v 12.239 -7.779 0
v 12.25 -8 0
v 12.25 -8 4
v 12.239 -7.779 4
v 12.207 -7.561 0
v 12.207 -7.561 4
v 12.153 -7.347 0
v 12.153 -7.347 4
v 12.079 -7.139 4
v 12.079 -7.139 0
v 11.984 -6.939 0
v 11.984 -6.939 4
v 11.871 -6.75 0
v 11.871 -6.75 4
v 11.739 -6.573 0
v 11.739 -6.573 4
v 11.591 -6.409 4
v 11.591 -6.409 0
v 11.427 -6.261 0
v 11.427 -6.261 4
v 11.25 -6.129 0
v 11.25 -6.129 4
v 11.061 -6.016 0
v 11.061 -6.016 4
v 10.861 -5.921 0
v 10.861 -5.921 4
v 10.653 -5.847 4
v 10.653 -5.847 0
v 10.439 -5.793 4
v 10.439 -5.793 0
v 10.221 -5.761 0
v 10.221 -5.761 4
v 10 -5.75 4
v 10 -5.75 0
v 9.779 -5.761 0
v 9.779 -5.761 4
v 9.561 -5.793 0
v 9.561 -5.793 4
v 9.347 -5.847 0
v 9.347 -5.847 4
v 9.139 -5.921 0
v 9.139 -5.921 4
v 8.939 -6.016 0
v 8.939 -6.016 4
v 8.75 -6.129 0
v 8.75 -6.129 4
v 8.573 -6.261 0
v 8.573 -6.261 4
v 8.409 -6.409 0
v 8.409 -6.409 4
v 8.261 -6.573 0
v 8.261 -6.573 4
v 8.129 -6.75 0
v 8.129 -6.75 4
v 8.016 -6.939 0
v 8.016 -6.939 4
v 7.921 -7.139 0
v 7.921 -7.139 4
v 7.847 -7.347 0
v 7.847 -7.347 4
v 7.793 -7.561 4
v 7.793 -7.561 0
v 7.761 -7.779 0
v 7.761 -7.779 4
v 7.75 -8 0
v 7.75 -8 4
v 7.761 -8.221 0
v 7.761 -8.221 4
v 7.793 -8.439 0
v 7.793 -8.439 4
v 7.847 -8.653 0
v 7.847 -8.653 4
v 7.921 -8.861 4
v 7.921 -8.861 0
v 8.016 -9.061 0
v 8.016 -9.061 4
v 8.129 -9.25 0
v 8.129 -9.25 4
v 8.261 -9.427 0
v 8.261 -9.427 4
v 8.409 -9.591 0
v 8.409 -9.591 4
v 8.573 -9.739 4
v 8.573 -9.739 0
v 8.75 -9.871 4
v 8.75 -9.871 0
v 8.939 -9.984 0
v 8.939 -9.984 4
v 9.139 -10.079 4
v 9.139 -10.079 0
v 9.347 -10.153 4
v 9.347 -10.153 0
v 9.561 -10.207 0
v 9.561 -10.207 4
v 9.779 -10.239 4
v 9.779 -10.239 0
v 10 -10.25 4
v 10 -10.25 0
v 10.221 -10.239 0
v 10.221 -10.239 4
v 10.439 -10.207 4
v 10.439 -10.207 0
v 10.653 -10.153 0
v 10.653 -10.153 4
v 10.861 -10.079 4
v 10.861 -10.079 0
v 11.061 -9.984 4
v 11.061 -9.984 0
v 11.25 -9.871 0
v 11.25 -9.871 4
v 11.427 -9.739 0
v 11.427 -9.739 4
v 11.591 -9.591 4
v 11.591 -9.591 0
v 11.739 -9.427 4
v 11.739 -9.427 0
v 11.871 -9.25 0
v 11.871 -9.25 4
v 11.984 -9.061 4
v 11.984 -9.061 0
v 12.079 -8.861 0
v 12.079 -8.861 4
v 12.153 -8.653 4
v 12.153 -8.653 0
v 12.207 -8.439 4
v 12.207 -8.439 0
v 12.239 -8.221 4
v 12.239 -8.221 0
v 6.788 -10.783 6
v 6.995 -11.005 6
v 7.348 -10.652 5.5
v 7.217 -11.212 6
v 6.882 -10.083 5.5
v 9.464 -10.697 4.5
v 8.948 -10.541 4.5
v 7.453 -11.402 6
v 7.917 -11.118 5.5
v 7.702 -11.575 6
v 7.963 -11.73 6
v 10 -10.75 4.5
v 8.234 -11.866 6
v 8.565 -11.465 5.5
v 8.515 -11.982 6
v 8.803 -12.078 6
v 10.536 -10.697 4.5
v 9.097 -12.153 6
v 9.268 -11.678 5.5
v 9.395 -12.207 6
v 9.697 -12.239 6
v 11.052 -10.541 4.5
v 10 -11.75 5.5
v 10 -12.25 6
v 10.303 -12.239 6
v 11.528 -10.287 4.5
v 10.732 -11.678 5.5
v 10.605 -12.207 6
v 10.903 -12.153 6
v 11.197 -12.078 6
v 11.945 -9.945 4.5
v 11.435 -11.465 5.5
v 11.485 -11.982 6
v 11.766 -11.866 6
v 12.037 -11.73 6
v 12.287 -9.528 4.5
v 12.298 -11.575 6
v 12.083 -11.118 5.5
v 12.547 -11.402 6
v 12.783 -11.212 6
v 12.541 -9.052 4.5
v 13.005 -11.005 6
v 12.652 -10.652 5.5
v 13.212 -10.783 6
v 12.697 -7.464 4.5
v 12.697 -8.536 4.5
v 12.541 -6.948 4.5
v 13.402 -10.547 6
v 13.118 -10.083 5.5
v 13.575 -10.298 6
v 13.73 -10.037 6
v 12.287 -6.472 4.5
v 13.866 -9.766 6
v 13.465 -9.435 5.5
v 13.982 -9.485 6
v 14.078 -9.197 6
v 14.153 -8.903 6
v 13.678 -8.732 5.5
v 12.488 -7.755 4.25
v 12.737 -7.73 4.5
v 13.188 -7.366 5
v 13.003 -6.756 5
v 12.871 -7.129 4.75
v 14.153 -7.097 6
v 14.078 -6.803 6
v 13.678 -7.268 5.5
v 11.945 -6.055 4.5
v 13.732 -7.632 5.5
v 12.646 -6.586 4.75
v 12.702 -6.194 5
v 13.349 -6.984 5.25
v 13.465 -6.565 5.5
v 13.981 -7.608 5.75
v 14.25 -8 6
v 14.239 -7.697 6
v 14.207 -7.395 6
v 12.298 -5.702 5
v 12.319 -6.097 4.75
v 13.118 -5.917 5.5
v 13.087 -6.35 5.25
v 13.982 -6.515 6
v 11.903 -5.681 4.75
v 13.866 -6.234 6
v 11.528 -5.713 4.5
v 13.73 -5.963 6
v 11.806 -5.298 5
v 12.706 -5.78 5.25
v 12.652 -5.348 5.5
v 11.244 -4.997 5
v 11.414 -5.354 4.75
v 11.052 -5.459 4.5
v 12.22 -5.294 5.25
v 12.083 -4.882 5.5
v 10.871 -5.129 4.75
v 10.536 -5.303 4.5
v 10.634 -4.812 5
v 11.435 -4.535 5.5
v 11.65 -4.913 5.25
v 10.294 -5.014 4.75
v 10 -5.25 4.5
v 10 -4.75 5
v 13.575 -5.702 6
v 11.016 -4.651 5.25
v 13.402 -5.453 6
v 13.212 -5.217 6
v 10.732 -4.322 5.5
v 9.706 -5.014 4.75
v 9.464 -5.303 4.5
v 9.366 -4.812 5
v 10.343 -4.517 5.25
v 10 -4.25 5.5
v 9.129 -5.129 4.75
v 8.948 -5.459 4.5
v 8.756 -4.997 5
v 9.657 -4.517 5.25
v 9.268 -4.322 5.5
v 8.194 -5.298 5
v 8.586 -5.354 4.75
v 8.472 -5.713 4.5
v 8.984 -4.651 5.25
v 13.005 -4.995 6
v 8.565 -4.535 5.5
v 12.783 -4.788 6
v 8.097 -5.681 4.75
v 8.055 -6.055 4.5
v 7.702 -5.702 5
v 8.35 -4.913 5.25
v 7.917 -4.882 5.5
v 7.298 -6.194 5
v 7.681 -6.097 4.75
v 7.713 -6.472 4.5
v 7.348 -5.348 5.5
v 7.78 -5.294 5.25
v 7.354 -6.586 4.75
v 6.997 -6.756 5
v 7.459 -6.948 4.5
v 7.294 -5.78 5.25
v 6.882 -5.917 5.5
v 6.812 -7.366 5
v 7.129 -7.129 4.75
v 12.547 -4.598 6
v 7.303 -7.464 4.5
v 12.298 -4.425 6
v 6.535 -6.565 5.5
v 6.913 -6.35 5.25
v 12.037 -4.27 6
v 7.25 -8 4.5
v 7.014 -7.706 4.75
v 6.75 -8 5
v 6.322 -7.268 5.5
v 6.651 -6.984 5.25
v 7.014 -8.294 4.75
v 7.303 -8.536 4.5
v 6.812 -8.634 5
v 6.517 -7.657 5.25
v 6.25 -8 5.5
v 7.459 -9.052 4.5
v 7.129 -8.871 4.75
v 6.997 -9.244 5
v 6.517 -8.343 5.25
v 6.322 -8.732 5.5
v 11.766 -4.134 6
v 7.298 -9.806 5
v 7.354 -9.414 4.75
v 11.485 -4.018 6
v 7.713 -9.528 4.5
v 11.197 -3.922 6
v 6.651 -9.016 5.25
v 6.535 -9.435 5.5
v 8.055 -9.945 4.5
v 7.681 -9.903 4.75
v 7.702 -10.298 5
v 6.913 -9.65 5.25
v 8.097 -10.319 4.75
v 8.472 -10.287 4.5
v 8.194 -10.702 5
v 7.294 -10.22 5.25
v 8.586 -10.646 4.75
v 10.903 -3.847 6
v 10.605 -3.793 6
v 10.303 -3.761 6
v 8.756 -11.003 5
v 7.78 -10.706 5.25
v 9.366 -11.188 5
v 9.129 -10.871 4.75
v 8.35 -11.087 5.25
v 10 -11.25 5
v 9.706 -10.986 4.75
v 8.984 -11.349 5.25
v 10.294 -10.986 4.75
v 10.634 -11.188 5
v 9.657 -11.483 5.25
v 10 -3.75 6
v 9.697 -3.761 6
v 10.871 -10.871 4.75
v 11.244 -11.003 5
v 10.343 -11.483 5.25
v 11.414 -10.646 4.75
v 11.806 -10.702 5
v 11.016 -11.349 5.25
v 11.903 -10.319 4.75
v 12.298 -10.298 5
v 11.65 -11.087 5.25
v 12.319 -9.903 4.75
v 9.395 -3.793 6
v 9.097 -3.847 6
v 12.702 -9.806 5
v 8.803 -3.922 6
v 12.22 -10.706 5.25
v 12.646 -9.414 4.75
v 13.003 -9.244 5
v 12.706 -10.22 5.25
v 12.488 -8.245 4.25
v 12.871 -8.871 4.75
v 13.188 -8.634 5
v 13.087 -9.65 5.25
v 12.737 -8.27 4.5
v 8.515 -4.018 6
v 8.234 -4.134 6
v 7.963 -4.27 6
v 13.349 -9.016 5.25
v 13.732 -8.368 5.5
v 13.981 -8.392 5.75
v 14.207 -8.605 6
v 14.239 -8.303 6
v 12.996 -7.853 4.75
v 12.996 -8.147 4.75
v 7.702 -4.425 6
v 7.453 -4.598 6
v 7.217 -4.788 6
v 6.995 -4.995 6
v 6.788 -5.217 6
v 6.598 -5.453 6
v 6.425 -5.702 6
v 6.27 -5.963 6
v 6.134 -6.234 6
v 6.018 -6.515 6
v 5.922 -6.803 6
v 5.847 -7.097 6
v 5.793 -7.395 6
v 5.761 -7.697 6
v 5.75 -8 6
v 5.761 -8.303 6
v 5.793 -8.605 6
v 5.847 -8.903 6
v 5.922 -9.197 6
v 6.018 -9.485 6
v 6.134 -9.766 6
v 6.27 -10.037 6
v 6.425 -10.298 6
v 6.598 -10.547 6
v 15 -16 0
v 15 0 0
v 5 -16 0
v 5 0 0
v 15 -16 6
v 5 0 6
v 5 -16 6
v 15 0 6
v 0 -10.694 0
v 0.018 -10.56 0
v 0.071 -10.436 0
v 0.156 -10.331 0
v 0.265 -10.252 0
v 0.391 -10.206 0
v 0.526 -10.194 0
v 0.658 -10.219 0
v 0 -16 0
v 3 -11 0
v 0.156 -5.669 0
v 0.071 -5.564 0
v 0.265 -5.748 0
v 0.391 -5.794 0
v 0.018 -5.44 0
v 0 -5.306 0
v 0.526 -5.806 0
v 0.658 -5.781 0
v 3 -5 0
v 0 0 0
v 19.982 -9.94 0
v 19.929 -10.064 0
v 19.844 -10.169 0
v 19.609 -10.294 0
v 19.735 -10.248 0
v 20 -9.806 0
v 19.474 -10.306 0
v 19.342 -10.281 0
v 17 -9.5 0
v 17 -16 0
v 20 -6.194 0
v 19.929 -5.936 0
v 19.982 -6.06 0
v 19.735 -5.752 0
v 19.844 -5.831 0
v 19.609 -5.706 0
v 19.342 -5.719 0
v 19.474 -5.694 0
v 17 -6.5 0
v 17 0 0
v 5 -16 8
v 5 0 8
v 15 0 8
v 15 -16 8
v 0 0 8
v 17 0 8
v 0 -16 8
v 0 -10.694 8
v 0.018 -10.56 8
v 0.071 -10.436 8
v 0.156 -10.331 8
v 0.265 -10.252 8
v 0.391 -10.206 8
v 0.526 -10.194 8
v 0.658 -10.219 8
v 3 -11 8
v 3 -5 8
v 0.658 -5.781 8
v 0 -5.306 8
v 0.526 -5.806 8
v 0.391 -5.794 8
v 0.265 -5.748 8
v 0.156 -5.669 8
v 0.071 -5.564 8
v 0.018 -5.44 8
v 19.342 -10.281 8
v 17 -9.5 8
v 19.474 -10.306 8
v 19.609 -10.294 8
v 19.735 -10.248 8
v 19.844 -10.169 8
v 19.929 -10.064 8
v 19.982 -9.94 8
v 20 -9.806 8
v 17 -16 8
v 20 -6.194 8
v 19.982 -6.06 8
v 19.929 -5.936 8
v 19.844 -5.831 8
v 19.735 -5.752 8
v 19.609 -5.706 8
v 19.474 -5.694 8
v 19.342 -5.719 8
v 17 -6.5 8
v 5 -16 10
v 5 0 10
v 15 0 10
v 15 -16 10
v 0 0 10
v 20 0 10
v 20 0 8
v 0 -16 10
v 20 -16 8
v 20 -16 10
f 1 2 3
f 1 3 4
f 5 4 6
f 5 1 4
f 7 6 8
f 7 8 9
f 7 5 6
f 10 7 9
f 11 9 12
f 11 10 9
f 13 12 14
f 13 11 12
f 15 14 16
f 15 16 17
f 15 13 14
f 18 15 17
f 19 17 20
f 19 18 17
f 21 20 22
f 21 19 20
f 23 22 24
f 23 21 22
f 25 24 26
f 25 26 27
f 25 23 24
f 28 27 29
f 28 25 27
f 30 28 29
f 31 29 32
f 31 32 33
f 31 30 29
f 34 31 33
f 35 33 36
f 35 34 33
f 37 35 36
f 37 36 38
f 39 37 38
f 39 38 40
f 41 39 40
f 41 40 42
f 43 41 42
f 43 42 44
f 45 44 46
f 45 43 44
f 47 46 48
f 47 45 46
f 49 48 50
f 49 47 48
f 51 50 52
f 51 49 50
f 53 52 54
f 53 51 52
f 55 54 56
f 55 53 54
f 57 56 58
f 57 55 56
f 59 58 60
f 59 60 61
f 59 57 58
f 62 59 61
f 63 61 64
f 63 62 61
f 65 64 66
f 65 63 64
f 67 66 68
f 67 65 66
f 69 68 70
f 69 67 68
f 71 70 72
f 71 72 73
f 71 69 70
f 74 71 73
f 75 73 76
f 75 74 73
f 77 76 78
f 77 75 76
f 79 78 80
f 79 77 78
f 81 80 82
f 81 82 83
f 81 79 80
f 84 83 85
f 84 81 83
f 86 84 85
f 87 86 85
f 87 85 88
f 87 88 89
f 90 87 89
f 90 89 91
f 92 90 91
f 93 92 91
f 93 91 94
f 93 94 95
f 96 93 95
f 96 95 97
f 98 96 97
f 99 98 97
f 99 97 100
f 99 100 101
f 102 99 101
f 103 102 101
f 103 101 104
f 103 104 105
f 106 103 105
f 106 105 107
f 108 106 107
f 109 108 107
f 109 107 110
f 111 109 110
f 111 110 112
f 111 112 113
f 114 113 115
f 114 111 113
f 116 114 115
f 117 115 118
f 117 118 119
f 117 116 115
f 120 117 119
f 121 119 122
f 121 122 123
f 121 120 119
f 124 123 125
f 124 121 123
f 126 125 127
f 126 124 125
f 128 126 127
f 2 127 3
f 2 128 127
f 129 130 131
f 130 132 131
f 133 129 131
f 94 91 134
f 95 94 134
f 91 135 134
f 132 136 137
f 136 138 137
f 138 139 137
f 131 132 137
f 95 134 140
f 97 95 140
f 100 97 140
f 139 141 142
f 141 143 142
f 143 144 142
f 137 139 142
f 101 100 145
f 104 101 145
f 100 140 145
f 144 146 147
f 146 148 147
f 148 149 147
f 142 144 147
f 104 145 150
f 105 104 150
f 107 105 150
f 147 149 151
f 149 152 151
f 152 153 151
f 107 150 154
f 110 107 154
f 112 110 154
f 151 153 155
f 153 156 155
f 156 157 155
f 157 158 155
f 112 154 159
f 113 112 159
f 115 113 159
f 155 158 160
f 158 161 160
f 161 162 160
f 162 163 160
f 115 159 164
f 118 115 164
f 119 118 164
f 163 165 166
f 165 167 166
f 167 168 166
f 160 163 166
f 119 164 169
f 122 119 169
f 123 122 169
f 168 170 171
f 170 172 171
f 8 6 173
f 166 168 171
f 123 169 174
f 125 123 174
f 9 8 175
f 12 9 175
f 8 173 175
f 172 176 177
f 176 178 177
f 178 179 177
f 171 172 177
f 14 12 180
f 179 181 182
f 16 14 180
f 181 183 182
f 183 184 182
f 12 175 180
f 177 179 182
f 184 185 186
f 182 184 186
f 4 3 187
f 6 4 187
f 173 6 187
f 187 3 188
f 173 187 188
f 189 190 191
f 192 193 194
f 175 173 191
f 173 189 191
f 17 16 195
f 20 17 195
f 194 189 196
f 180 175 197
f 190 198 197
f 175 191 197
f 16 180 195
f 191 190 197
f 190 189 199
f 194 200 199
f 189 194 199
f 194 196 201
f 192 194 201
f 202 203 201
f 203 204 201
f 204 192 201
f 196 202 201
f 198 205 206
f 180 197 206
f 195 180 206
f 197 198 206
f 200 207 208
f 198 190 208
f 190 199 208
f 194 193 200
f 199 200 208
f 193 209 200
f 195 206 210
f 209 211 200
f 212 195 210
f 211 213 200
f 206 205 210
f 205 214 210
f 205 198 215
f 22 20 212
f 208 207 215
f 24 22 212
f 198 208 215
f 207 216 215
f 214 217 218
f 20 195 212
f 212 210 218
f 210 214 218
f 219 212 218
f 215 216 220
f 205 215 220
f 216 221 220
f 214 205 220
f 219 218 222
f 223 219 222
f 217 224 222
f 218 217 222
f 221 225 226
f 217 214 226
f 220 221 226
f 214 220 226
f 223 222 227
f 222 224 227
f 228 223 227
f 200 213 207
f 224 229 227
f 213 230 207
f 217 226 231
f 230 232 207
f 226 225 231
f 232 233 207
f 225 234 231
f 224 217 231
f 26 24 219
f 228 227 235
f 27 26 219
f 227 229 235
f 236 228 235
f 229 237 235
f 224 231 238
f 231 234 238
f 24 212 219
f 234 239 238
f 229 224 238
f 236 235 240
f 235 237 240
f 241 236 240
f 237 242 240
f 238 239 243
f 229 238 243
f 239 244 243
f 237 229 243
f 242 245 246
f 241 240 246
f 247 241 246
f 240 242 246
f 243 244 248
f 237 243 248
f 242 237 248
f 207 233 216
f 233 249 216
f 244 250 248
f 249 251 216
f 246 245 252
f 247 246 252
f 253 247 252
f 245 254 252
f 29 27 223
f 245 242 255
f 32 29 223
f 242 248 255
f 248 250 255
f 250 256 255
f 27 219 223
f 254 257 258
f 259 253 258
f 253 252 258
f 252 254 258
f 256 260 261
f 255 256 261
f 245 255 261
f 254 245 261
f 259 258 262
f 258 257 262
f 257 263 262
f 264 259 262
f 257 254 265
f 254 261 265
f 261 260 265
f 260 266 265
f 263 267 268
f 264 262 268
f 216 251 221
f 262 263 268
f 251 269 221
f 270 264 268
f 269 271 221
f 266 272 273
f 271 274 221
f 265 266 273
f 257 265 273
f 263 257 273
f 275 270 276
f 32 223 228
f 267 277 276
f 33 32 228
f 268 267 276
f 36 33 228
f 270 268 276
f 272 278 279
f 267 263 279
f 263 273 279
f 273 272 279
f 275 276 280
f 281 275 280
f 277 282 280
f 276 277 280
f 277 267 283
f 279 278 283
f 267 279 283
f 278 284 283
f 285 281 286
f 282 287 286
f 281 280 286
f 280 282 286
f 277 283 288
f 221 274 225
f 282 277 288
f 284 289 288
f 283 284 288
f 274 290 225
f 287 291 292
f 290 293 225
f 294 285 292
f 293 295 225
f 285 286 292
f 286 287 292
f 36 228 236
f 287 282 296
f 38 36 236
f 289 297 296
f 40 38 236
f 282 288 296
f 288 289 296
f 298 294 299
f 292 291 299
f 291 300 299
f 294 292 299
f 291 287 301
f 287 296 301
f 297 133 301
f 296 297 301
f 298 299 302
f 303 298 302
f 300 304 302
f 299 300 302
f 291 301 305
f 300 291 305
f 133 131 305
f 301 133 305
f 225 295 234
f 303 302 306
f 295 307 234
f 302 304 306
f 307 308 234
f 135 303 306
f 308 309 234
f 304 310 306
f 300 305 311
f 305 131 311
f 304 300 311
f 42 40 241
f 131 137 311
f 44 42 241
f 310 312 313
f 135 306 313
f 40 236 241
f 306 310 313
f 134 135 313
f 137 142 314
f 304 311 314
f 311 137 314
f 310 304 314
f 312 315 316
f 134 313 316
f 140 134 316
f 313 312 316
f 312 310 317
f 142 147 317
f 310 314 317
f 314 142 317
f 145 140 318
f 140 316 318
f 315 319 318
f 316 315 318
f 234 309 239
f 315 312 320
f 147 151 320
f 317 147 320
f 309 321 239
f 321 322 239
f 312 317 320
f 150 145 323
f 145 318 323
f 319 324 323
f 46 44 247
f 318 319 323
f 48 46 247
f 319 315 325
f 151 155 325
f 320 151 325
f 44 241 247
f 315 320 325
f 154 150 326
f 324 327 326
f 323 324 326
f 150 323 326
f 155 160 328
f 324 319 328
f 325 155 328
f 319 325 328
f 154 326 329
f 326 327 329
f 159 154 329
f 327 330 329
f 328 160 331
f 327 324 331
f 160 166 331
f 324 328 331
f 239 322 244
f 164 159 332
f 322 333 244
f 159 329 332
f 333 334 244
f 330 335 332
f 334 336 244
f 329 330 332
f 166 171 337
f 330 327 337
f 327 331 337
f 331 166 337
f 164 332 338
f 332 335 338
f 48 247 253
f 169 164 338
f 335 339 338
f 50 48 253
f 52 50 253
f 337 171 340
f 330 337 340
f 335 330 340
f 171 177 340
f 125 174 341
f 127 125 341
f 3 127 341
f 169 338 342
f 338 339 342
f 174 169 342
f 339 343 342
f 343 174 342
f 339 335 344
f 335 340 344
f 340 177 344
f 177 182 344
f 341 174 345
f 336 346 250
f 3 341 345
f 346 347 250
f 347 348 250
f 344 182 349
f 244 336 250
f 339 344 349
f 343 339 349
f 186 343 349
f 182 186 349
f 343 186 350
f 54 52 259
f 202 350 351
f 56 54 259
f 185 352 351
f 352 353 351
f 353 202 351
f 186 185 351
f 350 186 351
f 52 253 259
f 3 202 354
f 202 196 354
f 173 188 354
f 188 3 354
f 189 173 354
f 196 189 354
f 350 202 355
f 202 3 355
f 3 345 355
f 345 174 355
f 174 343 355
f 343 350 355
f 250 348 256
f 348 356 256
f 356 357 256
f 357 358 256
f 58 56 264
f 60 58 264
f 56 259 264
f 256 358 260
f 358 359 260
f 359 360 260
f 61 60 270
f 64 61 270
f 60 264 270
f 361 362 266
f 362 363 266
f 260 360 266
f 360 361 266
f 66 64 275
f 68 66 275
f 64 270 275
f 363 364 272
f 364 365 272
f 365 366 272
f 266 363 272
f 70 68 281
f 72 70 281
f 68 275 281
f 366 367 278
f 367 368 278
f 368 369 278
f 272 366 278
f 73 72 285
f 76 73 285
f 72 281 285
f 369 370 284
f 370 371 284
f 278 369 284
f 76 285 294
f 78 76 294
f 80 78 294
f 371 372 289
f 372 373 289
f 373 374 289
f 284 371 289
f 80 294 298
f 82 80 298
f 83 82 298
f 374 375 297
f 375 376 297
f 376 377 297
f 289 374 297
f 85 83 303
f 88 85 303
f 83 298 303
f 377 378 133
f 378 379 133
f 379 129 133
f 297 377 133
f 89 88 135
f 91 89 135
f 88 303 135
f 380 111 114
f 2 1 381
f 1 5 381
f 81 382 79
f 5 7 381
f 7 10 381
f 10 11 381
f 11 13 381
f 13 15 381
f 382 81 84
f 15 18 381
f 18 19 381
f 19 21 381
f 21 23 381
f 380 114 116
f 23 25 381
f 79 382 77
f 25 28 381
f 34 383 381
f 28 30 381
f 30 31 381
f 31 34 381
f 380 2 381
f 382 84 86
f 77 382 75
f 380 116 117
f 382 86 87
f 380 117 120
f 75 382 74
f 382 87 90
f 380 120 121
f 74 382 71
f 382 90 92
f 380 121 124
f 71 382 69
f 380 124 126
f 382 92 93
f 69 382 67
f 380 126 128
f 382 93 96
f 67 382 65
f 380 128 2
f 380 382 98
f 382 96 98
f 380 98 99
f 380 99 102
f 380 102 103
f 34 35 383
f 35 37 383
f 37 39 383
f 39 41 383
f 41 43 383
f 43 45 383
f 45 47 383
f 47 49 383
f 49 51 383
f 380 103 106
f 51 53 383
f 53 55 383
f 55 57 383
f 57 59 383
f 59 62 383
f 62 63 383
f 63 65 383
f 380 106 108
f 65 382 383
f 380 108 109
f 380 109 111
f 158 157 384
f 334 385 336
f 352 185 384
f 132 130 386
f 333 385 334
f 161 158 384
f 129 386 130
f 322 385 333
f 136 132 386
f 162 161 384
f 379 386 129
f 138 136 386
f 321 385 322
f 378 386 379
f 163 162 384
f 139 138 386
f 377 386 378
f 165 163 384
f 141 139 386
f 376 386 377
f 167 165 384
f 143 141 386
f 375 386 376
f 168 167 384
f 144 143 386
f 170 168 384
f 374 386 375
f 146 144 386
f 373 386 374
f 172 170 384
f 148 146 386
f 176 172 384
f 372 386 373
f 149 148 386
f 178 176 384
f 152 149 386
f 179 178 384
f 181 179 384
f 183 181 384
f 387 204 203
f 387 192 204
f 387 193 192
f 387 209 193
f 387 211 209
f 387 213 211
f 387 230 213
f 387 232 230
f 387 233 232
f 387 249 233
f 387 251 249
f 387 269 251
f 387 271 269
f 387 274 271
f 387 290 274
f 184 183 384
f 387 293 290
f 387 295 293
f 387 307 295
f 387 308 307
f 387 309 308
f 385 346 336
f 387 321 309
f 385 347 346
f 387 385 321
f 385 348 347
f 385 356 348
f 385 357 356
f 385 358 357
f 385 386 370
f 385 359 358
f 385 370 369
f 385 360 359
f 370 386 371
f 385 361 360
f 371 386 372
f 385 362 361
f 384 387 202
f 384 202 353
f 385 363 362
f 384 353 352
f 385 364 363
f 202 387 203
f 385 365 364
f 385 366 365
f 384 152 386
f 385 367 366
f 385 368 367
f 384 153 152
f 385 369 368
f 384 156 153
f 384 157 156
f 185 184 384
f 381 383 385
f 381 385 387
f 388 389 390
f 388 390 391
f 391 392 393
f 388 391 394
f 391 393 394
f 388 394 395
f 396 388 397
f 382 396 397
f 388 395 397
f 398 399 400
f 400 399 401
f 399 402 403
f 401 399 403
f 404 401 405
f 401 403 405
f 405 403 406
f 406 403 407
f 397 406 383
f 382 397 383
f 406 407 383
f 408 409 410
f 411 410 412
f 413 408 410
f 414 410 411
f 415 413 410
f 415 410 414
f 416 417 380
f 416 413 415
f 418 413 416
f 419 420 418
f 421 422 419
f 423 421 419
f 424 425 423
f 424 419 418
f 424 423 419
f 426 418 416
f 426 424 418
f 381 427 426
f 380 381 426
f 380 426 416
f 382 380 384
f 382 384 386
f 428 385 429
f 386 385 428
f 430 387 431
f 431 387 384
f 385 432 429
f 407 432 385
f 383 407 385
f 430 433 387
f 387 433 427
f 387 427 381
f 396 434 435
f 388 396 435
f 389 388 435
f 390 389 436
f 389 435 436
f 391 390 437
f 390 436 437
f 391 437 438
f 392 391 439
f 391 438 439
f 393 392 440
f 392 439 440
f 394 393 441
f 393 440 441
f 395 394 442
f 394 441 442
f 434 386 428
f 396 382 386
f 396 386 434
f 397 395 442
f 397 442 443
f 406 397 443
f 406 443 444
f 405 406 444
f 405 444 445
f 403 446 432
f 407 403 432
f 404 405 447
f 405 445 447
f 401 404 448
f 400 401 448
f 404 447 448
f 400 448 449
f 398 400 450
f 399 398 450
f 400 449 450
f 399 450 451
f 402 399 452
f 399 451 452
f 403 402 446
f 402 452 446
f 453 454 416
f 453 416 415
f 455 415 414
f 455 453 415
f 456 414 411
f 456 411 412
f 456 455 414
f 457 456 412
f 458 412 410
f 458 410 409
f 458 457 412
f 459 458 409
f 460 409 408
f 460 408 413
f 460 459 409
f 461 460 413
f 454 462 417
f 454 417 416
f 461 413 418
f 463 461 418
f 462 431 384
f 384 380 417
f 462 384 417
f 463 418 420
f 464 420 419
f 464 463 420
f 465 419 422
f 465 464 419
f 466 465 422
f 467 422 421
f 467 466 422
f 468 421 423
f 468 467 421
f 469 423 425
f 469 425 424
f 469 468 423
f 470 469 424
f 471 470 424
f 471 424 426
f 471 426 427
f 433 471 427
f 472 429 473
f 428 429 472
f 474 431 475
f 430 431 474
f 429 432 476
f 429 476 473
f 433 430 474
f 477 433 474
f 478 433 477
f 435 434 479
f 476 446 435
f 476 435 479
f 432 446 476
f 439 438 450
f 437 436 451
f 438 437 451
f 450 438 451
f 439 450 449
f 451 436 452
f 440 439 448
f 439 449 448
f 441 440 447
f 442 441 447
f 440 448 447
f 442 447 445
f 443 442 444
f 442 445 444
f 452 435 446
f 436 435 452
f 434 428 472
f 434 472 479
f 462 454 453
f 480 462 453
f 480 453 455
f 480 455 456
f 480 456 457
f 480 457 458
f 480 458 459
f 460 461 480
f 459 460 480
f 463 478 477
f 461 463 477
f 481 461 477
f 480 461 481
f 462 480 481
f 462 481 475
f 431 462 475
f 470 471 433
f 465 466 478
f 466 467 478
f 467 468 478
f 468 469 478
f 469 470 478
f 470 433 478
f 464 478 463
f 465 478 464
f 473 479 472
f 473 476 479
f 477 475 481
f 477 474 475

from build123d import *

# Parameters (mm, degrees)
PAD_DEPTH    = 8
FILLET_R     = 0.5
SKETCH002_W  = 5
SKETCH002_H  = 16
PAD002_DEPTH = 2
SKETCH001_W  = 10
SKETCH001_H  = 16
SKETCH001_R  = 2.25
PAD001_DEPTH = 6
CHAMFER_SIZE = 2


with BuildPart() as encaixes:
    # Sketch → Pad (new body)
    with BuildSketch(Plane.XY):
        Polygon((0, 0), (5, 0), (5, -16), (0, -16), (0, -10), (3, -11), (3, -5), (0, -6), align=None)
        Polygon((15, 0), (15, -16), (17, -16), (17, -9.5), (20, -10.5), (20, -5.5), (17, -6.5), (17, 0), align=None)
    extrude(amount=PAD_DEPTH)

    # Fillet
    fillet_edges = [encaixes.edges().sort_by_distance(p)[0] for p in [
        (0, -6, 4),
        (0, -10, 4),
        (20, -5.5, 4),
        (20, -10.5, 4),
    ]]
    fillet(fillet_edges, radius=FILLET_R)


with BuildPart() as pad002:
    # Sketch002 → Pad002 (new body)
    with BuildSketch(Plane.XY.offset(8)):
        with Locations((2.5, -8)):
            Rectangle(SKETCH002_W, SKETCH002_H)
        with Locations((17.5, -8)):
            Rectangle(SKETCH002_W, SKETCH002_H)
    extrude(amount=PAD002_DEPTH)


with BuildPart() as fusion:
    # Sketch001 → Pad001 (new body)
    with BuildSketch(Plane.XY):
        with Locations((10, -8)):
            Rectangle(SKETCH001_W, SKETCH001_H)
        with Locations((10, -8)):
            Circle(SKETCH001_R, mode=Mode.SUBTRACT)
    extrude(amount=PAD001_DEPTH)

    # Chamfer
    chamfer_edges = [fusion.edges().sort_by_distance(p)[0] for p in [
        (7.75, -8, 6),
    ]]
    chamfer(chamfer_edges, length=CHAMFER_SIZE)

    # Fusion: union Encaixes, Pad002
    add(encaixes.part)
    add(pad002.part)


solid = fusion.part
